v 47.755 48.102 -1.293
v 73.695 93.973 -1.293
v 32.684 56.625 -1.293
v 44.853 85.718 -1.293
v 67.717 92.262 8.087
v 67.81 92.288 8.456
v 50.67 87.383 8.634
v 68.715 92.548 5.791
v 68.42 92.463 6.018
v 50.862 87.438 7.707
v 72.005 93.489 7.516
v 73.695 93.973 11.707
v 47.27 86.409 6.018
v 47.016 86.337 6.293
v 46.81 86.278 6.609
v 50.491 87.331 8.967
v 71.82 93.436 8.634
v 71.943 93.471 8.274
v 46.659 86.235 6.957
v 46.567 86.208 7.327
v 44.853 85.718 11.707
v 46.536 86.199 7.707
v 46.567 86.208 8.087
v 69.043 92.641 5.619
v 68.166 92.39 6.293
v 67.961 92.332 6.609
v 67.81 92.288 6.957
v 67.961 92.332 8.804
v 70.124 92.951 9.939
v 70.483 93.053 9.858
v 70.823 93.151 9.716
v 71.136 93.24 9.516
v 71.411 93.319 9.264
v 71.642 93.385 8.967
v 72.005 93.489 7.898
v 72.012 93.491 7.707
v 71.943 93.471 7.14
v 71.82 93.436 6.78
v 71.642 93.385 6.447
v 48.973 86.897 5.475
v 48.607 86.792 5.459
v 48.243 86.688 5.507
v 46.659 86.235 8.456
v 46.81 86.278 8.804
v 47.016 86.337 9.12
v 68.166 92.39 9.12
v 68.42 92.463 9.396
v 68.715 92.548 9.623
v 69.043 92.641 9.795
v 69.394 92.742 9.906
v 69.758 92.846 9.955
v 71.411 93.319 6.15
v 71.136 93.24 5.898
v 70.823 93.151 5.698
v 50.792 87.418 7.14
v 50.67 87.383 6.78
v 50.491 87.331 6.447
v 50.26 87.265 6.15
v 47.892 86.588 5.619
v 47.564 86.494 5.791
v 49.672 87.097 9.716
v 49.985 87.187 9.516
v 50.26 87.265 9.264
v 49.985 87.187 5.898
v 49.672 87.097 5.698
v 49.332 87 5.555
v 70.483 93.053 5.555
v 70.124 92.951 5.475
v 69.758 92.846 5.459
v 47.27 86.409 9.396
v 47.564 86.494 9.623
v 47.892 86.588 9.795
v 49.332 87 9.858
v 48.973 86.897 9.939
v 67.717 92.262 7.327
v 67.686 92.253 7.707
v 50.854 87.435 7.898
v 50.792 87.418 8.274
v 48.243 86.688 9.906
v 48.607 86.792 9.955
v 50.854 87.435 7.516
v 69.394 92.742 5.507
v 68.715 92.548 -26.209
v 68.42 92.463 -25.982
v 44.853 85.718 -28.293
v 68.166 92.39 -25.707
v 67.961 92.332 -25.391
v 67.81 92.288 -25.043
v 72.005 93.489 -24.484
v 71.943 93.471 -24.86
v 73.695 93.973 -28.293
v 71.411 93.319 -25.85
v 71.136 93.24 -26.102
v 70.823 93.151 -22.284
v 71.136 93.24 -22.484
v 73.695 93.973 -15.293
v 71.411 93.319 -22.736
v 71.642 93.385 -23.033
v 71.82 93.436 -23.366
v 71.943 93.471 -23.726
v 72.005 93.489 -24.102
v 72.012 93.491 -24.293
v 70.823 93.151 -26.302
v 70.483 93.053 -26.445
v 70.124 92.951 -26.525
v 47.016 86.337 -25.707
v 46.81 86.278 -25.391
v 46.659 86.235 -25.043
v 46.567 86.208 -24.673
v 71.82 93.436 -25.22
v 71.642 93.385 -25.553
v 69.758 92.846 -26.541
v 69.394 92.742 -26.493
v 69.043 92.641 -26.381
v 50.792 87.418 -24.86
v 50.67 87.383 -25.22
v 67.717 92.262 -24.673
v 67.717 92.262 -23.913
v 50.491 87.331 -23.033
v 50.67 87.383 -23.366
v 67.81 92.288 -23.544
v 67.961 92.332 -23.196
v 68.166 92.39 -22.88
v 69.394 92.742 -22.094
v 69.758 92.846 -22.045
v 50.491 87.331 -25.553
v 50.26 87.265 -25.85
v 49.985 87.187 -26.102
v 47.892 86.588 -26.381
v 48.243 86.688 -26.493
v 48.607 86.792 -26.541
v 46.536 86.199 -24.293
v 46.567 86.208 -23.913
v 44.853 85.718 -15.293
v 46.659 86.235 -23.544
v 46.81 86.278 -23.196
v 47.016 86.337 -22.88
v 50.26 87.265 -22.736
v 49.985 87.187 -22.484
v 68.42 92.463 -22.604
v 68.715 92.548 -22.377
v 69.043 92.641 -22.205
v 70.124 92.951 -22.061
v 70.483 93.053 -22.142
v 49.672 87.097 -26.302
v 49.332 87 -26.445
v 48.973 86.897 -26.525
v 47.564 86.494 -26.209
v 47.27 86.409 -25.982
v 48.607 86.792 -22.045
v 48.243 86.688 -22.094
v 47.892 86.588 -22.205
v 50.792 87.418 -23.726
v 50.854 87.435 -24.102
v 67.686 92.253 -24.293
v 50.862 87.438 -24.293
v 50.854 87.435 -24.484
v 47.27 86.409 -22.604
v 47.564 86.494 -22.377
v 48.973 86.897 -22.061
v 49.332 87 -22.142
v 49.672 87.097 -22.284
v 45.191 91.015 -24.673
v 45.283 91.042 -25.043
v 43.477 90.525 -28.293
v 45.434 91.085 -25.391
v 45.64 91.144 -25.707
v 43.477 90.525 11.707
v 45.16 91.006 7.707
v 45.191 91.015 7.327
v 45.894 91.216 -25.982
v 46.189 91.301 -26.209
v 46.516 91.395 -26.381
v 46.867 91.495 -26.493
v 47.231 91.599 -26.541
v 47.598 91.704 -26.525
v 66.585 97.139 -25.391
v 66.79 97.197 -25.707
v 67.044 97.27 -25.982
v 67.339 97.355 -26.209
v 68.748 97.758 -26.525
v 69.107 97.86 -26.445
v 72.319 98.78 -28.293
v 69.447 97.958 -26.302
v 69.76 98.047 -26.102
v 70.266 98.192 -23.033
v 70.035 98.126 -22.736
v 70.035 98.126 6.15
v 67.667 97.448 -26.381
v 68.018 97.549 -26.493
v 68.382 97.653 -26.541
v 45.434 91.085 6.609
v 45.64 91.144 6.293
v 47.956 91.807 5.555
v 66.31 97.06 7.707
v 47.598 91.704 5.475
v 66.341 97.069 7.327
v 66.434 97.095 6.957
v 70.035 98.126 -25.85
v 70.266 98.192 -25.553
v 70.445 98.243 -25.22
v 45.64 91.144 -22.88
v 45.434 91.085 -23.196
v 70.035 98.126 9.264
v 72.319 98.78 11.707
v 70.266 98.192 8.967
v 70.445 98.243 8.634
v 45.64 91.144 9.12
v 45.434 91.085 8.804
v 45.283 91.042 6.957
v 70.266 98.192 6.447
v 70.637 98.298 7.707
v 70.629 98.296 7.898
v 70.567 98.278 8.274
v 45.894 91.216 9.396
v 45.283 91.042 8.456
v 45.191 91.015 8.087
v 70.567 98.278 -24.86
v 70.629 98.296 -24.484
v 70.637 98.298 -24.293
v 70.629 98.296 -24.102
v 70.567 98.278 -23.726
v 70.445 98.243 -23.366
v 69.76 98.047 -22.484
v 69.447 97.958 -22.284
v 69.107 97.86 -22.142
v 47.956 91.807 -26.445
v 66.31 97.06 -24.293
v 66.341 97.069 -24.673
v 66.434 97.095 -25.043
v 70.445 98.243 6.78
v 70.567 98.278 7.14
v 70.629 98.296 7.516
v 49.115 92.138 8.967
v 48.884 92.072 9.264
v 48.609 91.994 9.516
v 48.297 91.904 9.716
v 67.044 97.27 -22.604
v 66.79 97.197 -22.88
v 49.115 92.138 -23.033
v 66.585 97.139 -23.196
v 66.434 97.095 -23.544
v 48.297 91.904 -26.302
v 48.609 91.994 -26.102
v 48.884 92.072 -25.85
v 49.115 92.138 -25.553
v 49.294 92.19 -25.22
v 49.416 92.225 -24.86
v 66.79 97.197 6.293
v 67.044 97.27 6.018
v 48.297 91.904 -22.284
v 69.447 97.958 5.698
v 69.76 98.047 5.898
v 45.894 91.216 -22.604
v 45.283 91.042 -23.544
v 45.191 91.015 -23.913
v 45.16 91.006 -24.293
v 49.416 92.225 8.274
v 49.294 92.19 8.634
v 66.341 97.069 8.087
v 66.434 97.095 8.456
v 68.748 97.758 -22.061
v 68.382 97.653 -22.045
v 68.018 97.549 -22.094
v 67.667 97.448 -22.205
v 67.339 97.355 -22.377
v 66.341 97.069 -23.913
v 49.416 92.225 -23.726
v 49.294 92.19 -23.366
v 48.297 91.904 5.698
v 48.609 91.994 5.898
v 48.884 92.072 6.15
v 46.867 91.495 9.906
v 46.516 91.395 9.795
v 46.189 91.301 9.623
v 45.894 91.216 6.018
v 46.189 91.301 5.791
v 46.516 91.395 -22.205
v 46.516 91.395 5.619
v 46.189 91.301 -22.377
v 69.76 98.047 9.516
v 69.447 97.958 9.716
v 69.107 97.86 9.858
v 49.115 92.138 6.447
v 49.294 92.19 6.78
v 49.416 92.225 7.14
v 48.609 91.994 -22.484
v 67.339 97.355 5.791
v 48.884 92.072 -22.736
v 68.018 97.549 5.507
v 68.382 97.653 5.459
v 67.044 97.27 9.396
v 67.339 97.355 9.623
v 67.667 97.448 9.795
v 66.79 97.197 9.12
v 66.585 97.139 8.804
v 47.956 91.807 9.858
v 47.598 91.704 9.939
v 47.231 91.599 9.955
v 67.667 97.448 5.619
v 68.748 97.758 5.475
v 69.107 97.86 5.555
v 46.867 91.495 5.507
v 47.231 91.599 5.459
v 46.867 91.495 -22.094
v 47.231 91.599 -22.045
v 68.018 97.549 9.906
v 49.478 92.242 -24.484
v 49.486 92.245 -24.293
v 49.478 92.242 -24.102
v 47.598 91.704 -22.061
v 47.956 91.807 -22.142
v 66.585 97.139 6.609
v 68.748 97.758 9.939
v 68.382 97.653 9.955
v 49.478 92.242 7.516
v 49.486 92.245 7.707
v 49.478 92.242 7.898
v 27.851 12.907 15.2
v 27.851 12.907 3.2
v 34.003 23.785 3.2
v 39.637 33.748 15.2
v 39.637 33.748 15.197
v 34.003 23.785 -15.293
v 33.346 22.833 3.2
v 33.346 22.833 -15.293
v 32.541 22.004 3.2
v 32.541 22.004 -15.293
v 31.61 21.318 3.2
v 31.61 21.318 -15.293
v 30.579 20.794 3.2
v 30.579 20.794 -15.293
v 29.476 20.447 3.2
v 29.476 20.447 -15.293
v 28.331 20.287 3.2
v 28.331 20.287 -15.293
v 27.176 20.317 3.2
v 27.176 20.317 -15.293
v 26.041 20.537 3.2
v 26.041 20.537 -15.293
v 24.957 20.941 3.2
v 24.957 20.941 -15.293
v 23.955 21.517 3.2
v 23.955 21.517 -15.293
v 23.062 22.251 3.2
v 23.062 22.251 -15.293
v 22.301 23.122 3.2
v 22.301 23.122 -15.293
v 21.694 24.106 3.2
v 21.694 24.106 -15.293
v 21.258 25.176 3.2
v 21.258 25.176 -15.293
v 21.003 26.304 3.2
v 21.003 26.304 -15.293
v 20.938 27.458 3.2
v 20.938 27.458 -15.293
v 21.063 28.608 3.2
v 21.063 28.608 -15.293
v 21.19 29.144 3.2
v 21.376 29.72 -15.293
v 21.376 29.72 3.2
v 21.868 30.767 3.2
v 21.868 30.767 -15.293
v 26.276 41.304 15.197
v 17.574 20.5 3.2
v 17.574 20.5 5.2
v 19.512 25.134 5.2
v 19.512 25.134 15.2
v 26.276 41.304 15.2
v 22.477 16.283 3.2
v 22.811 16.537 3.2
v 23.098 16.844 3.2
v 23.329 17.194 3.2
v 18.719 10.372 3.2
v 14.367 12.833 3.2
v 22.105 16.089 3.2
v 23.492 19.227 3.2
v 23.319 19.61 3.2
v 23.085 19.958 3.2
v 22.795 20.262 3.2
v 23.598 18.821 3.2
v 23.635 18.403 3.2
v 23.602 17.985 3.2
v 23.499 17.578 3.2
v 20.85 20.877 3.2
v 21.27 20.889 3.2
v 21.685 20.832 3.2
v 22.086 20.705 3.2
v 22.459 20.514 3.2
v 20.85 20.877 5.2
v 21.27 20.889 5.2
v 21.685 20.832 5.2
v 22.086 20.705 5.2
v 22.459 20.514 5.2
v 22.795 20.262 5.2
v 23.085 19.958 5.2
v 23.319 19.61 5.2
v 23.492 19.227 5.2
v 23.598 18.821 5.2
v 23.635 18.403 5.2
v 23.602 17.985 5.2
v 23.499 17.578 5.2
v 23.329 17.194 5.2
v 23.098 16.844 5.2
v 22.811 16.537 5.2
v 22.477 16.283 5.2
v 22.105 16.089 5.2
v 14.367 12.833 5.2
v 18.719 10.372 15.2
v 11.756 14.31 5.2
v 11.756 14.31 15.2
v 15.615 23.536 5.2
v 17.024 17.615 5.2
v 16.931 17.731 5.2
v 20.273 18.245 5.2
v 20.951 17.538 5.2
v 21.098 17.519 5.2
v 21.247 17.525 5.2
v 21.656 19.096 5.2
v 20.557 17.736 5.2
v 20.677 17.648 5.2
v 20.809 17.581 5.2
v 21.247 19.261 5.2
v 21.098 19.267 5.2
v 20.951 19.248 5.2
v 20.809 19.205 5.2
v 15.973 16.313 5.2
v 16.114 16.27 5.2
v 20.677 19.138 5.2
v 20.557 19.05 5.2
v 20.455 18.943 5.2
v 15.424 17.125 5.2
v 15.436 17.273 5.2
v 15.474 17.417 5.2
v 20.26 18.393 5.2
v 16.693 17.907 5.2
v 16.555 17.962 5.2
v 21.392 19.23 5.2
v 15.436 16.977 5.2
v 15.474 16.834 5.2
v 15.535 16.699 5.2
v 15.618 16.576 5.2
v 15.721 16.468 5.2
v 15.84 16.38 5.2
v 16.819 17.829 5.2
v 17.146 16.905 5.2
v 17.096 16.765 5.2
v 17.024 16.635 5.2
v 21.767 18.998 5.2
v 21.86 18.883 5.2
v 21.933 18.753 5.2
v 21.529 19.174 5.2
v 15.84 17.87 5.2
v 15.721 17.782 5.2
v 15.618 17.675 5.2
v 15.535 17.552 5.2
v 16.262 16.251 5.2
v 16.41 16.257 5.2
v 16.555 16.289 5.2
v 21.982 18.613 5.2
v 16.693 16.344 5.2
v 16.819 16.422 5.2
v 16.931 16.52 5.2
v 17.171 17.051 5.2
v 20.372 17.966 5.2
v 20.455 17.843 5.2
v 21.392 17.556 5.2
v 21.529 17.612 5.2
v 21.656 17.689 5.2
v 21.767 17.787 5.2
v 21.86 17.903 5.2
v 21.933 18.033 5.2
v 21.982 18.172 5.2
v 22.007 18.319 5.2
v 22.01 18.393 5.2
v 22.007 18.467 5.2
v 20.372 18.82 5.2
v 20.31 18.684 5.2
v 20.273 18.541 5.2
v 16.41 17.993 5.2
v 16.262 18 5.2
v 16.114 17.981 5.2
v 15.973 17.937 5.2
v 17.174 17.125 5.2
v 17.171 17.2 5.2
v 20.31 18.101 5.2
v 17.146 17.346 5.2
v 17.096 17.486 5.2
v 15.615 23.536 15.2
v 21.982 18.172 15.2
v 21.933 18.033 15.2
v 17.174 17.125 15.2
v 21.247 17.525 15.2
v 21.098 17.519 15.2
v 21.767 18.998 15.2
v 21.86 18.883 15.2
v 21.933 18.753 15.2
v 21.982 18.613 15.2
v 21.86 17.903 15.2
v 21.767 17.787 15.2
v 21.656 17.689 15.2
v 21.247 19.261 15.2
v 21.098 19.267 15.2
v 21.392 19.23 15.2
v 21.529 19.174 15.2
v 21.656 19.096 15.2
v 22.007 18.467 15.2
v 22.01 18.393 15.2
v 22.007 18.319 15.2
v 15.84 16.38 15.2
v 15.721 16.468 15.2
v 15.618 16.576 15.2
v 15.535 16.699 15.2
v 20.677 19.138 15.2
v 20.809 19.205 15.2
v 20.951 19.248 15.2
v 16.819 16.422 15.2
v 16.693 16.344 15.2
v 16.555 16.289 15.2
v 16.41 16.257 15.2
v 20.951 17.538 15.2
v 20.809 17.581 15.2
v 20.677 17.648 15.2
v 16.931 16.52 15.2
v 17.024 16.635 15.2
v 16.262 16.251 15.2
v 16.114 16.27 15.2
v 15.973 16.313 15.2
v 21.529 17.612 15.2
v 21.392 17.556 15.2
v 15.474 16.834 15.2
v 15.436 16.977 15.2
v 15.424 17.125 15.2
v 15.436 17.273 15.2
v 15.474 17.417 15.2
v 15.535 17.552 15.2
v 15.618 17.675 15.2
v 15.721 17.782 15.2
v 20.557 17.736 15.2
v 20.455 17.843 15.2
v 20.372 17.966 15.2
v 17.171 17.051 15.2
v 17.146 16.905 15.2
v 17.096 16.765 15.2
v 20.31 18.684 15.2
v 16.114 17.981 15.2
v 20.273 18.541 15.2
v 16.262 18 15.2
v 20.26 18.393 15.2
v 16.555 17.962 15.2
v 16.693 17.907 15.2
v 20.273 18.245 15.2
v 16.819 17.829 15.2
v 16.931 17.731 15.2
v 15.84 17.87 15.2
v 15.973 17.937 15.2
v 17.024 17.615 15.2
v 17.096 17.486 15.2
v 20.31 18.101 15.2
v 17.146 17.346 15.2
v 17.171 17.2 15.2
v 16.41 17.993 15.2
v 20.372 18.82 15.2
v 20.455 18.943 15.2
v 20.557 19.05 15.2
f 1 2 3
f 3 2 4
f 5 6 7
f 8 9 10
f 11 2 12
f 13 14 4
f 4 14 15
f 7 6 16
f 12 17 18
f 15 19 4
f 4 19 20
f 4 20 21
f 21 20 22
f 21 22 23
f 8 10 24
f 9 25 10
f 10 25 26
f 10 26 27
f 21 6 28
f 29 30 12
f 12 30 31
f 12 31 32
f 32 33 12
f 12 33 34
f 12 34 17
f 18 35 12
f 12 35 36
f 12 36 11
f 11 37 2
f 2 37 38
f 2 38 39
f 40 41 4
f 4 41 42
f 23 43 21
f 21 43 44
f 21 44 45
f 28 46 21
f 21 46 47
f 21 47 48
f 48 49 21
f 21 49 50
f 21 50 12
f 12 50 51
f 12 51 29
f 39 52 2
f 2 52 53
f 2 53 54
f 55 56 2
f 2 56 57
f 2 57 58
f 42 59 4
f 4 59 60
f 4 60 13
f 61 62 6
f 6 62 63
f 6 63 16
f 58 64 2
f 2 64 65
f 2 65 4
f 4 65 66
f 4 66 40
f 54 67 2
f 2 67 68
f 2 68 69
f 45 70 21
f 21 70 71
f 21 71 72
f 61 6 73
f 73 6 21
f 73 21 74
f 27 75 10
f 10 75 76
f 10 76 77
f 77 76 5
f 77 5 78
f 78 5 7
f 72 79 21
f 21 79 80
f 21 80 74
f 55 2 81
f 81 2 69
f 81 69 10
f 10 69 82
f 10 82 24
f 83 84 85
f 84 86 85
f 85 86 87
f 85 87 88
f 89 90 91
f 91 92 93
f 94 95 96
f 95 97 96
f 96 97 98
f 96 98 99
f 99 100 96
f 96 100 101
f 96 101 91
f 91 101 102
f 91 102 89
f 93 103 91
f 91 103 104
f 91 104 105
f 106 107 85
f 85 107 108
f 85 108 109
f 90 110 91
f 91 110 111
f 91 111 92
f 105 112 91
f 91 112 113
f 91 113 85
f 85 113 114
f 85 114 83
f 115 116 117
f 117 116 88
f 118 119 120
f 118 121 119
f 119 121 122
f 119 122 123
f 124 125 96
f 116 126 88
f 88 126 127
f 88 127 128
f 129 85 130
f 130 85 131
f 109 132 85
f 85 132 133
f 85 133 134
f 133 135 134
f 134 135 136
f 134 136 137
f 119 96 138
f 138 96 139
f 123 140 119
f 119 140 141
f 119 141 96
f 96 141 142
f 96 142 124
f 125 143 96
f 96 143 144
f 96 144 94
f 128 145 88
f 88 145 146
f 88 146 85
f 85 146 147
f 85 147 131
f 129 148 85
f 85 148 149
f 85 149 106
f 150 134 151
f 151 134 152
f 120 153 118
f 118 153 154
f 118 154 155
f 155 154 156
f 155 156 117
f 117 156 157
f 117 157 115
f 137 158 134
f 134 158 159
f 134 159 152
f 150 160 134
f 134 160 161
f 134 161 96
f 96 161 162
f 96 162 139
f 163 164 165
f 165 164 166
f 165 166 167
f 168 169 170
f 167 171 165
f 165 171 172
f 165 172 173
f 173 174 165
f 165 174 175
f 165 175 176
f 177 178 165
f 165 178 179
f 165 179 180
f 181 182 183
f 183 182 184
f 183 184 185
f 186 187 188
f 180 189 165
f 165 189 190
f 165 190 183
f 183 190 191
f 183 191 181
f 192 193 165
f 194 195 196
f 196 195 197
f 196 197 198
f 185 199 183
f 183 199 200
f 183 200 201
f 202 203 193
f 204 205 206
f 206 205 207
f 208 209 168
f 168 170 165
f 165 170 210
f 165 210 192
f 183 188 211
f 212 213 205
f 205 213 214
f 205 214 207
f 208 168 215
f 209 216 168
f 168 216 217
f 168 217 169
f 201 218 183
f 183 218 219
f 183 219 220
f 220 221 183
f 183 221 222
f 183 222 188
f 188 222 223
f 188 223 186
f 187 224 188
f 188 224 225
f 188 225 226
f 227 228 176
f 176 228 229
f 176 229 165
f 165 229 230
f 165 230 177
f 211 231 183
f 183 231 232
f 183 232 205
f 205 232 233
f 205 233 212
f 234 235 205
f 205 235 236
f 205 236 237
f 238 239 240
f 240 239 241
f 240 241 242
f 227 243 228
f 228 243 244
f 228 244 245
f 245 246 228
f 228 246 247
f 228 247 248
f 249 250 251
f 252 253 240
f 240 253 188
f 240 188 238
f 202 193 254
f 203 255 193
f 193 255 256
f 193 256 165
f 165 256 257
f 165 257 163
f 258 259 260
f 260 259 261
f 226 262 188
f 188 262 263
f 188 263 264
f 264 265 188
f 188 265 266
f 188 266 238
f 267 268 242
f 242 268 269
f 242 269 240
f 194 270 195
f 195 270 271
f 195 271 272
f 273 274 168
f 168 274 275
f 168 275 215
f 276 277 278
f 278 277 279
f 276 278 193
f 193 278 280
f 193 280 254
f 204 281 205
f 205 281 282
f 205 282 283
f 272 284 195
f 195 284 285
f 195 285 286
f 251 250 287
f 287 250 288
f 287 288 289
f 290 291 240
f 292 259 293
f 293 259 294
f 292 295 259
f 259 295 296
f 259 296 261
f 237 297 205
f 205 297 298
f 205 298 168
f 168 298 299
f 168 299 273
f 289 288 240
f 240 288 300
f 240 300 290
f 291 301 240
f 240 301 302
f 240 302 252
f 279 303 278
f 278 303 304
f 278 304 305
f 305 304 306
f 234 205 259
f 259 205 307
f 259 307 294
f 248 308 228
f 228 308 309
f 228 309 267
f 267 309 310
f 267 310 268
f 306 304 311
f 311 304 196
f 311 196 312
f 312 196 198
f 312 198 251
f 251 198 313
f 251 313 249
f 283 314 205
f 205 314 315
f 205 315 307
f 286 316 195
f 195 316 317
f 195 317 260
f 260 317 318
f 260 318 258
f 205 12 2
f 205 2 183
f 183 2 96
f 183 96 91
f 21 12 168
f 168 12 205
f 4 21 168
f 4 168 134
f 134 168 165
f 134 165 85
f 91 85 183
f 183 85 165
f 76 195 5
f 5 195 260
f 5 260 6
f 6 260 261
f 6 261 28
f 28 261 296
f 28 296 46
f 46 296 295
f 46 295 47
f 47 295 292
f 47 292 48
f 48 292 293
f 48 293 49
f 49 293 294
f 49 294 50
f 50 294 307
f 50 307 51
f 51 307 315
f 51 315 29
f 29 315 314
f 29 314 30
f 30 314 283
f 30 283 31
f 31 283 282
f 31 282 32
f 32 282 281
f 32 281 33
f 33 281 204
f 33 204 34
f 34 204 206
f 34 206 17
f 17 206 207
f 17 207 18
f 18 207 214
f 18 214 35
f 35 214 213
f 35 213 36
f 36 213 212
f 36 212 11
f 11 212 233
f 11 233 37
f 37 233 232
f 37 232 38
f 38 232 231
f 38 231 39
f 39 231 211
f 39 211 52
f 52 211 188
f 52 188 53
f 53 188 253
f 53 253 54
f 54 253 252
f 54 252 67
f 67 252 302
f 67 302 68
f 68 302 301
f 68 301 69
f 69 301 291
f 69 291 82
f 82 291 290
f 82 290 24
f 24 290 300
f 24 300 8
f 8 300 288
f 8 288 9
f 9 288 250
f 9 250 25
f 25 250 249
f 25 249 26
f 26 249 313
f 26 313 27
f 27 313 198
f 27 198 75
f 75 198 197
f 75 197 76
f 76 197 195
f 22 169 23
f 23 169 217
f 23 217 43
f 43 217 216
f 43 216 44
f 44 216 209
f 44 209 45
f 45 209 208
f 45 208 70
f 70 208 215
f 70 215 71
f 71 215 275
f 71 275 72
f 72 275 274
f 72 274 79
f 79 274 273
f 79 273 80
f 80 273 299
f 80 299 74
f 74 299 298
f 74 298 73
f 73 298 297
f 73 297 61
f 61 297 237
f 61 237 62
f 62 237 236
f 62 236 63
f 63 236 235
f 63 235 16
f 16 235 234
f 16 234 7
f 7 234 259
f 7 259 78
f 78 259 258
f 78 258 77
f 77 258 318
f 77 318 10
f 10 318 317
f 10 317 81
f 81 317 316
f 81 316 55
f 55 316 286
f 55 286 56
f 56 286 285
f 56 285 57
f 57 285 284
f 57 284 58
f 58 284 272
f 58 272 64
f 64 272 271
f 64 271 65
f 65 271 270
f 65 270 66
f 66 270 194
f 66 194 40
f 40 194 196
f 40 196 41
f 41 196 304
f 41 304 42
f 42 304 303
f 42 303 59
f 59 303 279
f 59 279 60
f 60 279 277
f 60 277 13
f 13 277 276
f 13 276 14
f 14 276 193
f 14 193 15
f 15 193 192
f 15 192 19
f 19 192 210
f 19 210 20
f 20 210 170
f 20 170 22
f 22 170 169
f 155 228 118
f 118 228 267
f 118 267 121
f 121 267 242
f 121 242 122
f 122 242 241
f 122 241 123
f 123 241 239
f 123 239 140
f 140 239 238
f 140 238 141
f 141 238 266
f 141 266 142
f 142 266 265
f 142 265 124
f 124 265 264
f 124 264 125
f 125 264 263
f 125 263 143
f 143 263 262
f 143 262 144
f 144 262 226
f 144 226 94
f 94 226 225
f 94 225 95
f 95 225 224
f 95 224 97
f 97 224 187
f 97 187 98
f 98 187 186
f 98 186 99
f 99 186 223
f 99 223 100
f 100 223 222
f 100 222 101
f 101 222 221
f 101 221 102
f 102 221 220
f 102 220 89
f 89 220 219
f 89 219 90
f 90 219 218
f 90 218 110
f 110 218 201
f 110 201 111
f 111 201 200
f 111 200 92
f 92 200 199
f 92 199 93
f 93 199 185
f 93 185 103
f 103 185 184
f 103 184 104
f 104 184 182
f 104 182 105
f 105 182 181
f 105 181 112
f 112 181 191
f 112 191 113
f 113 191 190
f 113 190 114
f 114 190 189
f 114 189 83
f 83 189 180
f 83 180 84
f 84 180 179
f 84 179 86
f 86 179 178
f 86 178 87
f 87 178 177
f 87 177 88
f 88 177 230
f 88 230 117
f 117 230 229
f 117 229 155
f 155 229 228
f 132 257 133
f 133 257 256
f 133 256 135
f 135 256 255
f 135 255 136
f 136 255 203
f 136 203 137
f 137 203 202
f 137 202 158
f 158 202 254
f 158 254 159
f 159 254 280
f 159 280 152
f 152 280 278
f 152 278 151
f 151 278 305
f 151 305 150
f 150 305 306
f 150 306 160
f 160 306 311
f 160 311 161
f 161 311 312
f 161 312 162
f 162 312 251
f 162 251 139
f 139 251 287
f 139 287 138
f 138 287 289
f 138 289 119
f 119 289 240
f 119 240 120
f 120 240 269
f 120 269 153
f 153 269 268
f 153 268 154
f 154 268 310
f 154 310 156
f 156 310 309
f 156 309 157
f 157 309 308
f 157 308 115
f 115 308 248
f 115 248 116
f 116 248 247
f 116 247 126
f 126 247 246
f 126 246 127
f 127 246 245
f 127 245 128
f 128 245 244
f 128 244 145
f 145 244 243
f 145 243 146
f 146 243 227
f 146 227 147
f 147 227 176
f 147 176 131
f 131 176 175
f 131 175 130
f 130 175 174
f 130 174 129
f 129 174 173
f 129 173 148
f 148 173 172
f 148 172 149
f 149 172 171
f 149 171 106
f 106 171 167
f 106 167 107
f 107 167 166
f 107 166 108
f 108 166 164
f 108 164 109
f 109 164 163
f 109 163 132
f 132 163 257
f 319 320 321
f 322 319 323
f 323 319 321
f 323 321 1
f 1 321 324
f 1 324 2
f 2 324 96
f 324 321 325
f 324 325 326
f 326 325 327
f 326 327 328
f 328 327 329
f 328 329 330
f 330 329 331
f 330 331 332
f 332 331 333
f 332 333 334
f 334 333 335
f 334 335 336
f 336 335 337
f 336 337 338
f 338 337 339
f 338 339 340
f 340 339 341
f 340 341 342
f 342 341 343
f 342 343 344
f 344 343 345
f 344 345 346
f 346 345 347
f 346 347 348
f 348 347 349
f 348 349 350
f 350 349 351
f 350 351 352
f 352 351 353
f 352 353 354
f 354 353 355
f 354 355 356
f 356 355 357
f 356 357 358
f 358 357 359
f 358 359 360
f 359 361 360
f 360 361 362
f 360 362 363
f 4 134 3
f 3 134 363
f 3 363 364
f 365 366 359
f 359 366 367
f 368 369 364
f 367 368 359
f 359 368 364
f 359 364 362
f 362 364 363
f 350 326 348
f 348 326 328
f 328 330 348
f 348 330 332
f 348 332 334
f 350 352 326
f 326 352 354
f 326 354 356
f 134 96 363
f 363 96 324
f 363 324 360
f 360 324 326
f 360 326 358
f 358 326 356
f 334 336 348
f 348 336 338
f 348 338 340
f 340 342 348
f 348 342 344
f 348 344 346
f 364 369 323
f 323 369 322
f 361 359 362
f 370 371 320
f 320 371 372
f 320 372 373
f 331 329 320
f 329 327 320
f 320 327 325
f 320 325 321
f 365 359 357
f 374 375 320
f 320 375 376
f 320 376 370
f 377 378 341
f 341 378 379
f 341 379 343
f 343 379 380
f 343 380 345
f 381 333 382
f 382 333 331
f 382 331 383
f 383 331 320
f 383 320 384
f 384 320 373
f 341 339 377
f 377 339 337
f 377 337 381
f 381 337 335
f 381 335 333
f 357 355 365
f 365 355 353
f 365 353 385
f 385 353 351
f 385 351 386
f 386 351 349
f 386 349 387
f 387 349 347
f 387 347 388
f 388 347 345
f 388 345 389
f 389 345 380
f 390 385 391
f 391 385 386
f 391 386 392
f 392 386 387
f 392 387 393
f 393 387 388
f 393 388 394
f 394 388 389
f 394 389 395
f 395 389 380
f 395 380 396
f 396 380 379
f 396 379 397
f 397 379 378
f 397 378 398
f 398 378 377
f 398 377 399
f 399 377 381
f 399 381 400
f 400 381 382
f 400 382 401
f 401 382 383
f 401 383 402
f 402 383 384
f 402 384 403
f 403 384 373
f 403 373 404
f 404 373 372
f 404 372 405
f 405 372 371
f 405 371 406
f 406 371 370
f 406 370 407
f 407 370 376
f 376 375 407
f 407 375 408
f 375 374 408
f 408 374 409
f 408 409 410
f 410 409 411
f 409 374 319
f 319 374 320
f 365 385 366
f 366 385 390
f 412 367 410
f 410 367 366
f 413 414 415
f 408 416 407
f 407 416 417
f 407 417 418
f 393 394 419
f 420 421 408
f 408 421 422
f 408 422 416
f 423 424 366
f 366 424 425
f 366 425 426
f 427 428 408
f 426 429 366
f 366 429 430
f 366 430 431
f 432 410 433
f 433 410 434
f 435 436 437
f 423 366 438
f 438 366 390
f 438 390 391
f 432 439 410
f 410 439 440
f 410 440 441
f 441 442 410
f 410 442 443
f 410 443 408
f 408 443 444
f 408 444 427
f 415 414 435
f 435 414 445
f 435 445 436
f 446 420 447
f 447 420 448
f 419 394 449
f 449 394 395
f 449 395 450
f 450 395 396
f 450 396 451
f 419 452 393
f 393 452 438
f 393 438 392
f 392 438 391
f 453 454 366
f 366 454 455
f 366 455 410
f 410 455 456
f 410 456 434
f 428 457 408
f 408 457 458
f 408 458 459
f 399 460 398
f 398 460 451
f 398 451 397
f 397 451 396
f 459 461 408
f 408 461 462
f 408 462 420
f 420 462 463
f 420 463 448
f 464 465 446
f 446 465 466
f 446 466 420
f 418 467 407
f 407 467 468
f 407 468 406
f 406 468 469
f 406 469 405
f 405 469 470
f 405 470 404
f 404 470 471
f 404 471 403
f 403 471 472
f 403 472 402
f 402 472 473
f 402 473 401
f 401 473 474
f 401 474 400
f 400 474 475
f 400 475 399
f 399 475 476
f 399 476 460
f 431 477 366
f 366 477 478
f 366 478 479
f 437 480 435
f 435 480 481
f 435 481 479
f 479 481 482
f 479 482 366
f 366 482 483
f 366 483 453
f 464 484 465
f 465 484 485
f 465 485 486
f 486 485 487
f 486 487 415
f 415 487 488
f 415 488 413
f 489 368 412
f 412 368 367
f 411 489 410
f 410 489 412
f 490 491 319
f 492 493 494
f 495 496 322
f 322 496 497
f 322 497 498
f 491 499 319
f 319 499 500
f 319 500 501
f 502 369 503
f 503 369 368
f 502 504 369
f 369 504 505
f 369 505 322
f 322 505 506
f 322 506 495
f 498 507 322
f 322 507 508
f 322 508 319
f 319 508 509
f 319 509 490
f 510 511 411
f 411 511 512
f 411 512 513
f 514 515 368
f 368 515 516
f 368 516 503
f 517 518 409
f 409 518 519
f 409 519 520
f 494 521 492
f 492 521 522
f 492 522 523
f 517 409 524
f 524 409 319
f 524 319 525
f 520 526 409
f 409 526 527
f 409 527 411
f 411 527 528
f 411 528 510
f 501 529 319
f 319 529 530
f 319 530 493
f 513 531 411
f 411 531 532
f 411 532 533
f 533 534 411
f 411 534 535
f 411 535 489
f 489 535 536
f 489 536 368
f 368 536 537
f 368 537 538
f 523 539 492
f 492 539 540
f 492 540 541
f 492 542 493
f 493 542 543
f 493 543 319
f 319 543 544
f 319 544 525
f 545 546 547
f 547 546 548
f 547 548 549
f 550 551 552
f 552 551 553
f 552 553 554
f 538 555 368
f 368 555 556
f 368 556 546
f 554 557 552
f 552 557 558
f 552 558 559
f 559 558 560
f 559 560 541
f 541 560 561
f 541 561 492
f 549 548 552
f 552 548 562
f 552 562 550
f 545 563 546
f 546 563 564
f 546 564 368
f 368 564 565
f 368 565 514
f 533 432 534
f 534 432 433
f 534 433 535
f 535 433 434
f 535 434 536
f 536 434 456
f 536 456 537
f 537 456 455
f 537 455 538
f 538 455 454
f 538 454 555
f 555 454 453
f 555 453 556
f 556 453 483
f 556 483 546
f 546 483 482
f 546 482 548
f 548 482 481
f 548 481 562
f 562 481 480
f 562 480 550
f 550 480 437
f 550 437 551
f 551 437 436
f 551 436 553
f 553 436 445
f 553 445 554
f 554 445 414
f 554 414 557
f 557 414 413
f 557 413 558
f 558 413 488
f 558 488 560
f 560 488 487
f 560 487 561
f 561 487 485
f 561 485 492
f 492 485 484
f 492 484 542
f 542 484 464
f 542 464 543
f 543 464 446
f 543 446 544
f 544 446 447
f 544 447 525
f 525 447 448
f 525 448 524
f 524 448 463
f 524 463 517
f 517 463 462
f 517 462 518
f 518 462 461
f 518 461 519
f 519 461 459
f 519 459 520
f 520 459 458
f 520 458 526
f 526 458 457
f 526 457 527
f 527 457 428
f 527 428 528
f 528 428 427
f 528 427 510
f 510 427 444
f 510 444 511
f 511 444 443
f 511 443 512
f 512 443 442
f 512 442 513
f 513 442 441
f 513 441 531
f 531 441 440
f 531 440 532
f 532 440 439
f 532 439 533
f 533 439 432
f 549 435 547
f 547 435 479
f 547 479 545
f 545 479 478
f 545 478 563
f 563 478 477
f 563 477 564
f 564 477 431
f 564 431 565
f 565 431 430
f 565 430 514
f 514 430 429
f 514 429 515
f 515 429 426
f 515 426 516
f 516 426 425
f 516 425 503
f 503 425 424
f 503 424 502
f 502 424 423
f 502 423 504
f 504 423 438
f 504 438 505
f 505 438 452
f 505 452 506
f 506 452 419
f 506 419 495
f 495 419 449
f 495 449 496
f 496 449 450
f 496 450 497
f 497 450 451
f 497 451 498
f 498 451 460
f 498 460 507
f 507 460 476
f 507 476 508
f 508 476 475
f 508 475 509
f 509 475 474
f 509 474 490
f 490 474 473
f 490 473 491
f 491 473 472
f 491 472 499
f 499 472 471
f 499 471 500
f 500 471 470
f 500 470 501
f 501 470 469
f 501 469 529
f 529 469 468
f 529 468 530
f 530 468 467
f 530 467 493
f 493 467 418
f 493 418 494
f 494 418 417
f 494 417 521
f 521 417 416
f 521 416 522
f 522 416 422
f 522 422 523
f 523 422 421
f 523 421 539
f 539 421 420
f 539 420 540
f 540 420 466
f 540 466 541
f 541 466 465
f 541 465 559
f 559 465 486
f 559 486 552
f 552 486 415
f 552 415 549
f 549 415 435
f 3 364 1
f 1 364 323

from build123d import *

# Parameters (mm, degrees)
SKETCH3_W                = 30
SKETCH3_H                = 39.99999999999999
SKETCH3_R                = 2.2500000000000107
BOSS_EXTRUDE1_DEPTH      = 5
BOSS_EXTRUDE2_DEPTH      = 7
BOSS_EXTRUDE2_DEPTH_BACK = 7
BOSS_EXTRUDE3_DEPTH      = 4.493237048
BOSS_EXTRUDE4_DEPTH      = 2
BOSS_EXTRUDE5_DEPTH      = 10
SKETCH8_R                = 0.874999999999402
SKETCH8_R_2              = 0.8749999999993996
CUT_EXTRUDE1_DEPTH       = 128.20148900625736
CHAMFER1_SIZE            = 16.49


with BuildPart() as part:
    # Sketch3 → Boss-Extrude1 (new body)
    with BuildSketch(Plane(origin=(-20.656096268089573, 72.16840410421906, 1.396e-13), x_dir=(0.9613952185534441, 0.2751712807372447, 0), z_dir=(0.2751712807372447, -0.9613952185534441, -1.905836610257915e-15))):
        with Locations((81.70857094012555, -8.293237047851846)):
            Rectangle(SKETCH3_W, SKETCH3_H)
        with Locations((92.70857094012555, 7.706762952148144)):
            Circle(SKETCH3_R, mode=Mode.SUBTRACT)
        with Locations((70.70857094012555, 7.706762952148144)):
            Circle(SKETCH3_R, mode=Mode.SUBTRACT)
        with Locations((92.70857094012555, -24.293237047851843)):
            Circle(SKETCH3_R, mode=Mode.SUBTRACT)
        with Locations((70.70857094012555, -24.293237047851843)):
            Circle(SKETCH3_R, mode=Mode.SUBTRACT)
    extrude(amount=BOSS_EXTRUDE1_DEPTH)

    # Sketch4 → Boss-Extrude2 (add, two sides: drawn at the far end of the back side and taken through both)
    with BuildSketch(Plane.XY.offset(-8.293237047851855).offset(-BOSS_EXTRUDE2_DEPTH_BACK)):
        with BuildLine():
            Line((73.69491783056992, 93.97284933531479), (44.8530612739666, 85.71771091319745))
            Line((44.8530612739666, 85.71771091319745), (21.868275221764016, 30.766725890030358))
            ThreePointArc((21.868275221764016, 30.766725890030358), (24.444464826602115, 21.20831351558636), (34.00287720104611, 23.78450312042446))
            Line((34.00287720104611, 23.78450312042446), (73.69491783056992, 93.97284933531479))
        make_face()
    extrude(amount=BOSS_EXTRUDE2_DEPTH + BOSS_EXTRUDE2_DEPTH_BACK)

    # Sketch5 → Boss-Extrude3 (add)
    with BuildSketch(Plane.XY.offset(-1.2932370478518544)):
        with BuildLine():
            Line((34.00287720104611, 23.78450312042448), (39.63747674144046, 33.74829477867678))
            Line((39.63747674144046, 33.74829477867678), (26.275931115955906, 41.30434988526449))
            Line((26.275931115955906, 41.30434988526449), (21.868275221764016, 30.766725890030376))
            ThreePointArc((21.868275221764016, 30.766725890030376), (24.444464826602115, 21.20831351558638), (34.00287720104611, 23.78450312042448))
        make_face()
    extrude(amount=BOSS_EXTRUDE3_DEPTH)

    # Sketch6 → Boss-Extrude4 (add)
    with BuildSketch(Plane.XY.offset(3.199999999999975)):
        with BuildLine():
            Line((14.367137951998398, 12.833346791724153), (22.10488555177782, 16.08852481695844))
            ThreePointArc((22.10488555177782, 16.08852481695844), (23.553783162359977, 19.026709419920138), (20.85003386751253, 20.876566927309664))
            Line((20.85003386751253, 20.876566927309664), (17.573963093227494, 20.50007903397223))
            Line((17.573963093227494, 20.50007903397223), (26.275931115955906, 41.30434988526449))
            Line((26.275931115955906, 41.30434988526449), (39.63747674144046, 33.74829477867678))
            Line((39.63747674144046, 33.74829477867678), (27.851332502459574, 12.906585477167601))
            Line((27.851332502459574, 12.906585477167601), (18.71941105293458, 10.372103436249658))
            Line((18.71941105293458, 10.372103436249658), (14.367137951998398, 12.833346791724153))
        make_face()
    extrude(amount=BOSS_EXTRUDE4_DEPTH)

    # Sketch9 → Boss-Extrude5 (add)
    with BuildSketch(Plane.XY.offset(5.199999999999974)):
        Polygon((19.512348726132714, 25.134283574349986), (26.275931115955906, 41.30434988526451), (39.637476741440466, 33.74829477867679), (27.851332502459464, 12.906585477167425), (18.719411052934504, 10.37210343624943), (14.367137951998316, 12.833346791723917), (11.755774091436686, 14.310092805008848), (15.614590337202541, 23.53557583742582), align=None)
    extrude(amount=BOSS_EXTRUDE5_DEPTH)

    # Sketch8 → Cut-Extrude1 (cut, through all)
    with BuildSketch(Plane.XY.offset(3.199999999999975)):
        with Locations((21.135456701762944, 18.39291360897205)):
            Circle(SKETCH8_R)
        with Locations((16.298803780568512, 17.12532198707588)):
            Circle(SKETCH8_R_2)
    extrude(amount=CUT_EXTRUDE1_DEPTH, mode=Mode.SUBTRACT)

    # Chamfer1
    chamfer1_edges = [part.edges().sort_by_distance(p)[0] for p in [
        (32.95670392869818, 37.52632233197063, -1.2932370478518544),
    ]]
    chamfer(chamfer1_edges, length=CHAMFER1_SIZE)


solid = part.part
